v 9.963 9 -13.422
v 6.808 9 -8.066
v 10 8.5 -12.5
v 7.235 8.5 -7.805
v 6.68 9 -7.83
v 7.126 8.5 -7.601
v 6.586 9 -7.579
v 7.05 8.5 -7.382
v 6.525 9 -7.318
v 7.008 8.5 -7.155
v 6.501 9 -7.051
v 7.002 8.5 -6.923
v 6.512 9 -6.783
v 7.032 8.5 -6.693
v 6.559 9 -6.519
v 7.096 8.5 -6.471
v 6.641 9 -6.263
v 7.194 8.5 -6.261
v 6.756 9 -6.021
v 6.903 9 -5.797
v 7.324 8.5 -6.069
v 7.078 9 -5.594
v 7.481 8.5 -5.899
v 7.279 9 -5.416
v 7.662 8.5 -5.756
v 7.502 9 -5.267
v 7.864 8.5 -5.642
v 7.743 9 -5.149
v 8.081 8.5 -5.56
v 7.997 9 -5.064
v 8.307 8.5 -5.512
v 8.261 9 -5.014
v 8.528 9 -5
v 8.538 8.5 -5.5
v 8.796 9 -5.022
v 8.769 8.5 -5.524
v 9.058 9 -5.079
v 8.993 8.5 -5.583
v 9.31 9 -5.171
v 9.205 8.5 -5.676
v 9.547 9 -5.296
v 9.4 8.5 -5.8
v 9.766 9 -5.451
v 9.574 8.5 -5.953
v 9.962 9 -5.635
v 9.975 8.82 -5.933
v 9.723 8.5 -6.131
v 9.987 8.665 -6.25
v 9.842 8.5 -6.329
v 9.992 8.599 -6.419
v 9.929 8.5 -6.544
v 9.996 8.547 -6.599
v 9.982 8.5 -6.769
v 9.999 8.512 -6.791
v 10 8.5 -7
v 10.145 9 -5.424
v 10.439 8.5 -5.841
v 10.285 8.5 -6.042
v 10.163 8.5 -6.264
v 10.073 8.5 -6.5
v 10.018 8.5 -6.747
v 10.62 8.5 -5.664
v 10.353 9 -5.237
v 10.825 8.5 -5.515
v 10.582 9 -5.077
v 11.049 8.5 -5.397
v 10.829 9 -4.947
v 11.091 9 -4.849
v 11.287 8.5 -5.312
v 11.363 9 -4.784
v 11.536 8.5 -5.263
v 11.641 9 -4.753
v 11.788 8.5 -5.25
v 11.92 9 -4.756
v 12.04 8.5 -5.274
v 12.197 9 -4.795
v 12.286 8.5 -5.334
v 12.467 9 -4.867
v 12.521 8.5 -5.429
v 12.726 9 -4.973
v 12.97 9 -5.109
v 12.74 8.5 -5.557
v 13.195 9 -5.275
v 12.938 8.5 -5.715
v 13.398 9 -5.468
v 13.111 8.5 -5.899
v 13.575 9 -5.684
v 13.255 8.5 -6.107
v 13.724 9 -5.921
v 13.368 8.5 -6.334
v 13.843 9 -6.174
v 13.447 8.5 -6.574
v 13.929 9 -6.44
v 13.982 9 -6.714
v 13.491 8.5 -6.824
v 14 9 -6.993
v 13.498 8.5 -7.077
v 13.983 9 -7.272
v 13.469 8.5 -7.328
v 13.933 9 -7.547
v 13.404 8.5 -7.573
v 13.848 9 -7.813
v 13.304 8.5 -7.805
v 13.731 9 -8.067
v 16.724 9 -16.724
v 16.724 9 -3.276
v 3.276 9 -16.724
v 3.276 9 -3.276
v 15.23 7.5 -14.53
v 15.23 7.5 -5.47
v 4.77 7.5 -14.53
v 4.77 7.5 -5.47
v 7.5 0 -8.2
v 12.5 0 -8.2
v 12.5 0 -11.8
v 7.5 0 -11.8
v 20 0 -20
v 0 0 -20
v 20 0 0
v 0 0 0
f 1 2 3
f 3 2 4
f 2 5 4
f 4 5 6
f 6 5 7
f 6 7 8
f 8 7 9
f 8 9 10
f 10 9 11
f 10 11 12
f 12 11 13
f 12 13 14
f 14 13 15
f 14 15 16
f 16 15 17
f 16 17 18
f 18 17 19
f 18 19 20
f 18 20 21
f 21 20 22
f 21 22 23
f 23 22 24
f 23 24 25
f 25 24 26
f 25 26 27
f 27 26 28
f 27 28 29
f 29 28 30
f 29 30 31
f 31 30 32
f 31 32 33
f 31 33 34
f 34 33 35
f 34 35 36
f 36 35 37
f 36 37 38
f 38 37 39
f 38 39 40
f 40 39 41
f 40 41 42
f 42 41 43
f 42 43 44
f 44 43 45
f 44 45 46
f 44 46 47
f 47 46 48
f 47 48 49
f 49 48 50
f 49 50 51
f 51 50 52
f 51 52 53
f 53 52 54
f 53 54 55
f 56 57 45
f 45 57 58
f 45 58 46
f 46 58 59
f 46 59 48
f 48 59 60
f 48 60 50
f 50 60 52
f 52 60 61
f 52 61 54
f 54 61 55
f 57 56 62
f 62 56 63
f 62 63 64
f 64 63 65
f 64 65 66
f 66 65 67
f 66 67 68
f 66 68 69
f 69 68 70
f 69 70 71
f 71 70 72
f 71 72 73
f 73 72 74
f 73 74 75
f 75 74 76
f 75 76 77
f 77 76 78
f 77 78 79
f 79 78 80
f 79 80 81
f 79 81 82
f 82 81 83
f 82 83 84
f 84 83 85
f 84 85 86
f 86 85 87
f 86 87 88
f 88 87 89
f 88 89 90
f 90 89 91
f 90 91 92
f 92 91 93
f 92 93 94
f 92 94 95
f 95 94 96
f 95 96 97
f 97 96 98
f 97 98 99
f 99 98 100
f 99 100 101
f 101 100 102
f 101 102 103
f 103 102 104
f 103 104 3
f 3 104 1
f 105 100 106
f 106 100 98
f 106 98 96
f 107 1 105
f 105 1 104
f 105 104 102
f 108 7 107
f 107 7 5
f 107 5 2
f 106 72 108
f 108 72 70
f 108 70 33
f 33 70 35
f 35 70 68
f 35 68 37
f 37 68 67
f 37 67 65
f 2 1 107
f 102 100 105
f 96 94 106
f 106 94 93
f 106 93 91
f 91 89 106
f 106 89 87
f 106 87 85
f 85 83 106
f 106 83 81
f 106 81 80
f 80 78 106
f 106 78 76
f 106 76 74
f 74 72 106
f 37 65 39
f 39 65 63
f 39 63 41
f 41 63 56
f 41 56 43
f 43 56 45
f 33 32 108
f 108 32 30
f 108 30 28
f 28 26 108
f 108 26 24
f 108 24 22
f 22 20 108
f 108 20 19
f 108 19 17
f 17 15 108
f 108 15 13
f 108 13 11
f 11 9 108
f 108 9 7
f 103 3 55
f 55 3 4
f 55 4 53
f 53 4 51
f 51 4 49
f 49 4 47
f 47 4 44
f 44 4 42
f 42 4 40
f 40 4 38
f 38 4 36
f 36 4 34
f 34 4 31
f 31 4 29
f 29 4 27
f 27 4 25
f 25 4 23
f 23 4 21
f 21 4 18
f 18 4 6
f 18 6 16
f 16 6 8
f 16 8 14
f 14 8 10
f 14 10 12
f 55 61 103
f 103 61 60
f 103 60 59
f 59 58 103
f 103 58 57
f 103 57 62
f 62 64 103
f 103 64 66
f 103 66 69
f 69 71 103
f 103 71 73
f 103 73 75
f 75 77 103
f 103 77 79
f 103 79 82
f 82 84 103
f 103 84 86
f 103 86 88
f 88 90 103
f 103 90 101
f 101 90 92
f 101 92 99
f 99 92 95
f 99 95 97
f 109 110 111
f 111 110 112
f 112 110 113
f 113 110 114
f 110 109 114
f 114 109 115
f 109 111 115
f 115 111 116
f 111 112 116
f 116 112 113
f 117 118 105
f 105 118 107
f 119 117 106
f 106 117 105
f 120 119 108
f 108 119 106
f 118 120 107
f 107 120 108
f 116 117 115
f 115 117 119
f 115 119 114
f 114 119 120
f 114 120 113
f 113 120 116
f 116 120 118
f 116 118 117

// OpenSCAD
module object1(scale) {polyhedron(
 points=[[9.962706565856934,9,-13.421809196472168],[6.807797908782959,9,-8.066044807434082],[10,8.5,-12.5],
[10,8.5,-12.5],[6.807797908782959,9,-8.066044807434082],[7.234551429748535,8.5,-7.805382251739502],
[6.807797908782959,9,-8.066044807434082],[6.680378437042236,9,-7.830046653747559],[7.234551429748535,8.5,-7.805382251739502],
[7.234551429748535,8.5,-7.805382251739502],[6.680378437042236,9,-7.830046653747559],[7.125678539276123,8.5,-7.601032257080078],
[7.125678539276123,8.5,-7.601032257080078],[6.680378437042236,9,-7.830046653747559],[6.5856804847717285,9,-7.579121112823486],
[7.125678539276123,8.5,-7.601032257080078],[6.5856804847717285,9,-7.579121112823486],[7.049551963806152,8.5,-7.38236141204834],
[7.049551963806152,8.5,-7.38236141204834],[6.5856804847717285,9,-7.579121112823486],[6.525407791137695,9,-7.317781448364258],
[7.049551963806152,8.5,-7.38236141204834],[6.525407791137695,9,-7.317781448364258],[7.007986545562744,8.5,-7.154580116271973],
[7.007986545562744,8.5,-7.154580116271973],[6.525407791137695,9,-7.317781448364258],[6.500643730163574,9,-7.050727367401123],
[7.007986545562744,8.5,-7.154580116271973],[6.500643730163574,9,-7.050727367401123],[7.00197172164917,8.5,-6.923114776611328],
[7.00197172164917,8.5,-6.923114776611328],[6.500643730163574,9,-7.050727367401123],[6.511833190917969,9,-6.782761096954346],
[7.00197172164917,8.5,-6.923114776611328],[6.511833190917969,9,-6.782761096954346],[7.031651973724365,8.5,-6.693481922149658],
[7.031651973724365,8.5,-6.693481922149658],[6.511833190917969,9,-6.782761096954346],[6.558775901794434,9,-6.518701553344727],
[7.031651973724365,8.5,-6.693481922149658],[6.558775901794434,9,-6.518701553344727],[7.096319198608398,8.5,-6.4711527824401855],
[7.096319198608398,8.5,-6.4711527824401855],[6.558775901794434,9,-6.518701553344727],[6.640626907348633,9,-6.263296604156494],
[7.096319198608398,8.5,-6.4711527824401855],[6.640626907348633,9,-6.263296604156494],[7.194432735443115,8.5,-6.261424541473389],
[7.194432735443115,8.5,-6.261424541473389],[6.640626907348633,9,-6.263296604156494],[6.755914688110352,9,-6.021140098571777],
[7.194432735443115,8.5,-6.261424541473389],[6.755914688110352,9,-6.021140098571777],[6.902566432952881,9,-5.796586036682129],
[7.194432735443115,8.5,-6.261424541473389],[6.902566432952881,9,-5.796586036682129],[7.323654651641846,8.5,-6.0692949295043945],
[7.323654651641846,8.5,-6.0692949295043945],[6.902566432952881,9,-5.796586036682129],[7.077944278717041,9,-5.593672752380371],
[7.323654651641846,8.5,-6.0692949295043945],[7.077944278717041,9,-5.593672752380371],[7.4809064865112305,8.5,-5.899342060089111],
[7.4809064865112305,8.5,-5.899342060089111],[7.077944278717041,9,-5.593672752380371],[7.278894424438477,9,-5.416049003601074],
[7.4809064865112305,8.5,-5.899342060089111],[7.278894424438477,9,-5.416049003601074],[7.662440776824951,8.5,-5.755614757537842],
[7.662440776824951,8.5,-5.755614757537842],[7.278894424438477,9,-5.416049003601074],[7.501803398132324,9,-5.266909122467041],
[7.662440776824951,8.5,-5.755614757537842],[7.501803398132324,9,-5.266909122467041],[7.863932132720947,8.5,-5.641538619995117],
[7.863932132720947,8.5,-5.641538619995117],[7.501803398132324,9,-5.266909122467041],[7.7426629066467285,9,-5.148935317993164],
[7.863932132720947,8.5,-5.641538619995117],[7.7426629066467285,9,-5.148935317993164],[8.08057975769043,8.5,-5.559831142425537],
[8.08057975769043,8.5,-5.559831142425537],[7.7426629066467285,9,-5.148935317993164],[7.997141361236572,9,-5.064248561859131],
[8.08057975769043,8.5,-5.559831142425537],[7.997141361236572,9,-5.064248561859131],[8.307220458984375,8.5,-5.512439727783203],
[8.307220458984375,8.5,-5.512439727783203],[7.997141361236572,9,-5.064248561859131],[8.260663032531738,9,-5.0143723487854],
[8.307220458984375,8.5,-5.512439727783203],[8.260663032531738,9,-5.0143723487854],[8.528488159179688,9,-5.0002031326293945],
[8.307220458984375,8.5,-5.512439727783203],[8.528488159179688,9,-5.0002031326293945],[8.53845500946045,8.5,-5.500493049621582],
[8.53845500946045,8.5,-5.500493049621582],[8.528488159179688,9,-5.0002031326293945],[8.795801162719727,9,-5.021995544433594],
[8.53845500946045,8.5,-5.500493049621582],[8.795801162719727,9,-5.021995544433594],[8.768774032592773,8.5,-5.524276256561279],
[8.768774032592773,8.5,-5.524276256561279],[8.795801162719727,9,-5.021995544433594],[9.057794570922852,9,-5.079358100891113],
[8.768774032592773,8.5,-5.524276256561279],[9.057794570922852,9,-5.079358100891113],[8.992688179016113,8.5,-5.583222389221191],
[8.992688179016113,8.5,-5.583222389221191],[9.057794570922852,9,-5.079358100891113],[9.309758186340332,9,-5.17125940322876],
[8.992688179016113,8.5,-5.583222389221191],[9.309758186340332,9,-5.17125940322876],[9.204862594604492,8.5,-5.67592716217041],
[9.204862594604492,8.5,-5.67592716217041],[9.309758186340332,9,-5.17125940322876],[9.547159194946289,9,-5.296046257019043],
[9.204862594604492,8.5,-5.67592716217041],[9.547159194946289,9,-5.296046257019043],[9.40024185180664,8.5,-5.8001813888549805],
[9.40024185180664,8.5,-5.8001813888549805],[9.547159194946289,9,-5.296046257019043],[9.765729904174805,9,-5.451475143432617],
[9.40024185180664,8.5,-5.8001813888549805],[9.765729904174805,9,-5.451475143432617],[9.574170112609863,8.5,-5.953024387359619],
[9.574170112609863,8.5,-5.953024387359619],[9.765729904174805,9,-5.451475143432617],[9.961538314819336,9,-5.634750843048096],
[9.574170112609863,8.5,-5.953024387359619],[9.961538314819336,9,-5.634750843048096],[9.975346565246582,8.820490837097168,-5.9332594871521],
[9.574170112609863,8.5,-5.953024387359619],[9.975346565246582,8.820490837097168,-5.9332594871521],[9.722503662109375,8.5,-6.130814075469971],
[9.722503662109375,8.5,-6.130814075469971],[9.975346565246582,8.820490837097168,-5.9332594871521],[9.987335205078125,8.664649963378906,-6.250372409820557],
[9.722503662109375,8.5,-6.130814075469971],[9.987335205078125,8.664649963378906,-6.250372409820557],[9.841708183288574,8.5,-6.329314708709717],
[9.841708183288574,8.5,-6.329314708709717],[9.987335205078125,8.664649963378906,-6.250372409820557],[9.992377281188965,8.599093437194824,-6.419357776641846],
[9.841708183288574,8.5,-6.329314708709717],[9.992377281188965,8.599093437194824,-6.419357776641846],[9.928942680358887,8.5,-6.543796062469482],
[9.928942680358887,8.5,-6.543796062469482],[9.992377281188965,8.599093437194824,-6.419357776641846],[9.996391296386719,8.546920776367188,-6.5987443923950195],
[9.928942680358887,8.5,-6.543796062469482],[9.996391296386719,8.546920776367188,-6.5987443923950195],[9.982129096984863,8.5,-6.769147872924805],
[9.982129096984863,8.5,-6.769147872924805],[9.996391296386719,8.546920776367188,-6.5987443923950195],[9.999042510986328,8.512450218200684,-6.791351795196533],
[9.982129096984863,8.5,-6.769147872924805],[9.999042510986328,8.512450218200684,-6.791351795196533],[10,8.5,-7],
[10.14463996887207,9,-5.423511028289795],[10.43892765045166,8.5,-5.840867042541504],[9.961538314819336,9,-5.634750843048096],
[9.961538314819336,9,-5.634750843048096],[10.43892765045166,8.5,-5.840867042541504],[10.285398483276367,8.5,-6.042168617248535],
[9.961538314819336,9,-5.634750843048096],[10.285398483276367,8.5,-6.042168617248535],[9.975346565246582,8.820490837097168,-5.9332594871521],
[9.975346565246582,8.820490837097168,-5.9332594871521],[10.285398483276367,8.5,-6.042168617248535],[10.162520408630371,8.5,-6.263515949249268],
[9.975346565246582,8.820490837097168,-5.9332594871521],[10.162520408630371,8.5,-6.263515949249268],[9.987335205078125,8.664649963378906,-6.250372409820557],
[9.987335205078125,8.664649963378906,-6.250372409820557],[10.162520408630371,8.5,-6.263515949249268],[10.072866439819336,8.5,-6.500277042388916],
[9.987335205078125,8.664649963378906,-6.250372409820557],[10.072866439819336,8.5,-6.500277042388916],[9.992377281188965,8.599093437194824,-6.419357776641846],
[9.992377281188965,8.599093437194824,-6.419357776641846],[10.072866439819336,8.5,-6.500277042388916],[9.996391296386719,8.546920776367188,-6.5987443923950195],
[9.996391296386719,8.546920776367188,-6.5987443923950195],[10.072866439819336,8.5,-6.500277042388916],[10.018312454223633,8.5,-6.747496128082275],
[9.996391296386719,8.546920776367188,-6.5987443923950195],[10.018312454223633,8.5,-6.747496128082275],[9.999042510986328,8.512450218200684,-6.791351795196533],
[9.999042510986328,8.512450218200684,-6.791351795196533],[10.018312454223633,8.5,-6.747496128082275],[10,8.5,-7],
[10.43892765045166,8.5,-5.840867042541504],[10.14463996887207,9,-5.423511028289795],[10.619895935058594,8.5,-5.663824558258057],
[10.619895935058594,8.5,-5.663824558258057],[10.14463996887207,9,-5.423511028289795],[10.352522850036621,9,-5.236606597900391],
[10.619895935058594,8.5,-5.663824558258057],[10.352522850036621,9,-5.236606597900391],[10.824515342712402,8.5,-5.514746189117432],
[10.824515342712402,8.5,-5.514746189117432],[10.352522850036621,9,-5.236606597900391],[10.581977844238281,9,-5.076923370361328],
[10.824515342712402,8.5,-5.514746189117432],[10.581977844238281,9,-5.076923370361328],[11.048504829406738,8.5,-5.39675235748291],
[11.048504829406738,8.5,-5.39675235748291],[10.581977844238281,9,-5.076923370361328],[10.829463005065918,9,-4.946926116943359],
[11.048504829406738,8.5,-5.39675235748291],[10.829463005065918,9,-4.946926116943359],[11.091158866882324,9,-4.848621845245361],
[11.048504829406738,8.5,-5.39675235748291],[11.091158866882324,9,-4.848621845245361],[11.287174224853516,8.5,-5.31231164932251],
[11.287174224853516,8.5,-5.31231164932251],[11.091158866882324,9,-4.848621845245361],[11.363024711608887,9,-4.783527374267578],
[11.287174224853516,8.5,-5.31231164932251],[11.363024711608887,9,-4.783527374267578],[11.535531044006348,8.5,-5.2631916999816895],
[11.535531044006348,8.5,-5.2631916999816895],[11.363024711608887,9,-4.783527374267578],[11.640864372253418,9,-4.75264835357666],
[11.535531044006348,8.5,-5.2631916999816895],[11.640864372253418,9,-4.75264835357666],[11.788375854492188,8.5,-5.250421047210693],
[11.788375854492188,8.5,-5.250421047210693],[11.640864372253418,9,-4.75264835357666],[11.920389175415039,9,-4.756461143493652],
[11.788375854492188,8.5,-5.250421047210693],[11.920389175415039,9,-4.756461143493652],[12.040416717529297,8.5,-5.274266242980957],
[12.040416717529297,8.5,-5.274266242980957],[11.920389175415039,9,-4.756461143493652],[12.197282791137695,9,-4.7949066162109375],
[12.040416717529297,8.5,-5.274266242980957],[12.197282791137695,9,-4.7949066162109375],[12.286380767822266,8.5,-5.334228038787842],
[12.286380767822266,8.5,-5.334228038787842],[12.197282791137695,9,-4.7949066162109375],[12.467272758483887,9,-4.867391109466553],
[12.286380767822266,8.5,-5.334228038787842],[12.467272758483887,9,-4.867391109466553],[12.521119117736816,8.5,-5.429052352905273],
[12.521119117736816,8.5,-5.429052352905273],[12.467272758483887,9,-4.867391109466553],[12.726189613342285,9,-4.972796440124512],
[12.521119117736816,8.5,-5.429052352905273],[12.726189613342285,9,-4.972796440124512],[12.970037460327148,9,-5.109495162963867],
[12.521119117736816,8.5,-5.429052352905273],[12.970037460327148,9,-5.109495162963867],[12.739718437194824,8.5,-5.5567545890808105],
[12.739718437194824,8.5,-5.5567545890808105],[12.970037460327148,9,-5.109495162963867],[13.195052146911621,9,-5.27537727355957],
[12.739718437194824,8.5,-5.5567545890808105],[13.195052146911621,9,-5.27537727355957],[12.937604904174805,8.5,-5.714661121368408],
[12.937604904174805,8.5,-5.714661121368408],[13.195052146911621,9,-5.27537727355957],[13.397760391235352,9,-5.467881679534912],
[12.937604904174805,8.5,-5.714661121368408],[13.397760391235352,9,-5.467881679534912],[13.110635757446289,8.5,-5.899468421936035],
[13.110635757446289,8.5,-5.899468421936035],[13.397760391235352,9,-5.467881679534912],[13.575032234191895,9,-5.684037208557129],
[13.110635757446289,8.5,-5.899468421936035],[13.575032234191895,9,-5.684037208557129],[13.255191802978516,8.5,-6.1073079109191895],
[13.255191802978516,8.5,-6.1073079109191895],[13.575032234191895,9,-5.684037208557129],[13.72413158416748,9,-5.920506477355957],
[13.255191802978516,8.5,-6.1073079109191895],[13.72413158416748,9,-5.920506477355957],[13.368245124816895,8.5,-6.3338303565979],
[13.368245124816895,8.5,-6.3338303565979],[13.72413158416748,9,-5.920506477355957],[13.842756271362305,9,-6.17363977432251],
[13.368245124816895,8.5,-6.3338303565979],[13.842756271362305,9,-6.17363977432251],[13.447431564331055,8.5,-6.574294567108154],
[13.447431564331055,8.5,-6.574294567108154],[13.842756271362305,9,-6.17363977432251],[13.929076194763184,9,-6.4395294189453125],
[13.447431564331055,8.5,-6.574294567108154],[13.929076194763184,9,-6.4395294189453125],[13.981758117675781,9,-6.714070796966553],
[13.447431564331055,8.5,-6.574294567108154],[13.981758117675781,9,-6.714070796966553],[13.491093635559082,8.5,-6.823668003082275],
[13.491093635559082,8.5,-6.823668003082275],[13.981758117675781,9,-6.714070796966553],[13.99998950958252,9,-6.993025779724121],
[13.491093635559082,8.5,-6.823668003082275],[13.99998950958252,9,-6.993025779724121],[13.498316764831543,8.5,-7.076732158660889],
[13.498316764831543,8.5,-7.076732158660889],[13.99998950958252,9,-6.993025779724121],[13.983488082885742,9,-7.272089004516602],
[13.498316764831543,8.5,-7.076732158660889],[13.983488082885742,9,-7.272089004516602],[13.468951225280762,8.5,-7.328190326690674],
[13.468951225280762,8.5,-7.328190326690674],[13.983488082885742,9,-7.272089004516602],[13.93250846862793,9,-7.546951770782471],
[13.468951225280762,8.5,-7.328190326690674],[13.93250846862793,9,-7.546951770782471],[13.403609275817871,8.5,-7.572779655456543],
[13.403609275817871,8.5,-7.572779655456543],[13.93250846862793,9,-7.546951770782471],[13.84783935546875,9,-7.813371181488037],
[13.403609275817871,8.5,-7.572779655456543],[13.84783935546875,9,-7.813371181488037],[13.30366039276123,8.5,-7.805382251739502],
[13.30366039276123,8.5,-7.805382251739502],[13.84783935546875,9,-7.813371181488037],[13.730785369873047,9,-8.067234992980957],
[13.30366039276123,8.5,-7.805382251739502],[13.730785369873047,9,-8.067234992980957],[10,8.5,-12.5],
[10,8.5,-12.5],[13.730785369873047,9,-8.067234992980957],[9.962706565856934,9,-13.421809196472168],
[16.724267959594727,9,-16.724267959594727],[13.93250846862793,9,-7.546951770782471],[16.724267959594727,9,-3.2757320404052734],
[16.724267959594727,9,-3.2757320404052734],[13.93250846862793,9,-7.546951770782471],[13.983488082885742,9,-7.272089004516602],
[16.724267959594727,9,-3.2757320404052734],[13.983488082885742,9,-7.272089004516602],[13.99998950958252,9,-6.993025779724121],
[3.2757320404052734,9,-16.724267959594727],[9.962706565856934,9,-13.421809196472168],[16.724267959594727,9,-16.724267959594727],
[16.724267959594727,9,-16.724267959594727],[9.962706565856934,9,-13.421809196472168],[13.730785369873047,9,-8.067234992980957],
[16.724267959594727,9,-16.724267959594727],[13.730785369873047,9,-8.067234992980957],[13.84783935546875,9,-7.813371181488037],
[3.2757320404052734,9,-3.2757320404052734],[6.5856804847717285,9,-7.579121112823486],[3.2757320404052734,9,-16.724267959594727],
[3.2757320404052734,9,-16.724267959594727],[6.5856804847717285,9,-7.579121112823486],[6.680378437042236,9,-7.830046653747559],
[3.2757320404052734,9,-16.724267959594727],[6.680378437042236,9,-7.830046653747559],[6.807797908782959,9,-8.066044807434082],
[16.724267959594727,9,-3.2757320404052734],[11.640864372253418,9,-4.75264835357666],[3.2757320404052734,9,-3.2757320404052734],
[3.2757320404052734,9,-3.2757320404052734],[11.640864372253418,9,-4.75264835357666],[11.363024711608887,9,-4.783527374267578],
[3.2757320404052734,9,-3.2757320404052734],[11.363024711608887,9,-4.783527374267578],[8.528488159179688,9,-5.0002031326293945],
[8.528488159179688,9,-5.0002031326293945],[11.363024711608887,9,-4.783527374267578],[8.795801162719727,9,-5.021995544433594],
[8.795801162719727,9,-5.021995544433594],[11.363024711608887,9,-4.783527374267578],[11.091158866882324,9,-4.848621845245361],
[8.795801162719727,9,-5.021995544433594],[11.091158866882324,9,-4.848621845245361],[9.057794570922852,9,-5.079358100891113],
[9.057794570922852,9,-5.079358100891113],[11.091158866882324,9,-4.848621845245361],[10.829463005065918,9,-4.946926116943359],
[9.057794570922852,9,-5.079358100891113],[10.829463005065918,9,-4.946926116943359],[10.581977844238281,9,-5.076923370361328],
[6.807797908782959,9,-8.066044807434082],[9.962706565856934,9,-13.421809196472168],[3.2757320404052734,9,-16.724267959594727],
[13.84783935546875,9,-7.813371181488037],[13.93250846862793,9,-7.546951770782471],[16.724267959594727,9,-16.724267959594727],
[13.99998950958252,9,-6.993025779724121],[13.981758117675781,9,-6.714070796966553],[16.724267959594727,9,-3.2757320404052734],
[16.724267959594727,9,-3.2757320404052734],[13.981758117675781,9,-6.714070796966553],[13.929076194763184,9,-6.4395294189453125],
[16.724267959594727,9,-3.2757320404052734],[13.929076194763184,9,-6.4395294189453125],[13.842756271362305,9,-6.17363977432251],
[13.842756271362305,9,-6.17363977432251],[13.72413158416748,9,-5.920506477355957],[16.724267959594727,9,-3.2757320404052734],
[16.724267959594727,9,-3.2757320404052734],[13.72413158416748,9,-5.920506477355957],[13.575032234191895,9,-5.684037208557129],
[16.724267959594727,9,-3.2757320404052734],[13.575032234191895,9,-5.684037208557129],[13.397760391235352,9,-5.467881679534912],
[13.397760391235352,9,-5.467881679534912],[13.195052146911621,9,-5.27537727355957],[16.724267959594727,9,-3.2757320404052734],
[16.724267959594727,9,-3.2757320404052734],[13.195052146911621,9,-5.27537727355957],[12.970037460327148,9,-5.109495162963867],
[16.724267959594727,9,-3.2757320404052734],[12.970037460327148,9,-5.109495162963867],[12.726189613342285,9,-4.972796440124512],
[12.726189613342285,9,-4.972796440124512],[12.467272758483887,9,-4.867391109466553],[16.724267959594727,9,-3.2757320404052734],
[16.724267959594727,9,-3.2757320404052734],[12.467272758483887,9,-4.867391109466553],[12.197282791137695,9,-4.7949066162109375],
[16.724267959594727,9,-3.2757320404052734],[12.197282791137695,9,-4.7949066162109375],[11.920389175415039,9,-4.756461143493652],
[11.920389175415039,9,-4.756461143493652],[11.640864372253418,9,-4.75264835357666],[16.724267959594727,9,-3.2757320404052734],
[9.057794570922852,9,-5.079358100891113],[10.581977844238281,9,-5.076923370361328],[9.309758186340332,9,-5.17125940322876],
[9.309758186340332,9,-5.17125940322876],[10.581977844238281,9,-5.076923370361328],[10.352522850036621,9,-5.236606597900391],
[9.309758186340332,9,-5.17125940322876],[10.352522850036621,9,-5.236606597900391],[9.547159194946289,9,-5.296046257019043],
[9.547159194946289,9,-5.296046257019043],[10.352522850036621,9,-5.236606597900391],[10.14463996887207,9,-5.423511028289795],
[9.547159194946289,9,-5.296046257019043],[10.14463996887207,9,-5.423511028289795],[9.765729904174805,9,-5.451475143432617],
[9.765729904174805,9,-5.451475143432617],[10.14463996887207,9,-5.423511028289795],[9.961538314819336,9,-5.634750843048096],
[8.528488159179688,9,-5.0002031326293945],[8.260663032531738,9,-5.0143723487854],[3.2757320404052734,9,-3.2757320404052734],
[3.2757320404052734,9,-3.2757320404052734],[8.260663032531738,9,-5.0143723487854],[7.997141361236572,9,-5.064248561859131],
[3.2757320404052734,9,-3.2757320404052734],[7.997141361236572,9,-5.064248561859131],[7.7426629066467285,9,-5.148935317993164],
[7.7426629066467285,9,-5.148935317993164],[7.501803398132324,9,-5.266909122467041],[3.2757320404052734,9,-3.2757320404052734],
[3.2757320404052734,9,-3.2757320404052734],[7.501803398132324,9,-5.266909122467041],[7.278894424438477,9,-5.416049003601074],
[3.2757320404052734,9,-3.2757320404052734],[7.278894424438477,9,-5.416049003601074],[7.077944278717041,9,-5.593672752380371],
[7.077944278717041,9,-5.593672752380371],[6.902566432952881,9,-5.796586036682129],[3.2757320404052734,9,-3.2757320404052734],
[3.2757320404052734,9,-3.2757320404052734],[6.902566432952881,9,-5.796586036682129],[6.755914688110352,9,-6.021140098571777],
[3.2757320404052734,9,-3.2757320404052734],[6.755914688110352,9,-6.021140098571777],[6.640626907348633,9,-6.263296604156494],
[6.640626907348633,9,-6.263296604156494],[6.558775901794434,9,-6.518701553344727],[3.2757320404052734,9,-3.2757320404052734],
[3.2757320404052734,9,-3.2757320404052734],[6.558775901794434,9,-6.518701553344727],[6.511833190917969,9,-6.782761096954346],
[3.2757320404052734,9,-3.2757320404052734],[6.511833190917969,9,-6.782761096954346],[6.500643730163574,9,-7.050727367401123],
[6.500643730163574,9,-7.050727367401123],[6.525407791137695,9,-7.317781448364258],[3.2757320404052734,9,-3.2757320404052734],
[3.2757320404052734,9,-3.2757320404052734],[6.525407791137695,9,-7.317781448364258],[6.5856804847717285,9,-7.579121112823486],
[13.30366039276123,8.5,-7.805382251739502],[10,8.5,-12.5],[10,8.5,-7],
[10,8.5,-7],[10,8.5,-12.5],[7.234551429748535,8.5,-7.805382251739502],
[10,8.5,-7],[7.234551429748535,8.5,-7.805382251739502],[9.982129096984863,8.5,-6.769147872924805],
[9.982129096984863,8.5,-6.769147872924805],[7.234551429748535,8.5,-7.805382251739502],[9.928942680358887,8.5,-6.543796062469482],
[9.928942680358887,8.5,-6.543796062469482],[7.234551429748535,8.5,-7.805382251739502],[9.841708183288574,8.5,-6.329314708709717],
[9.841708183288574,8.5,-6.329314708709717],[7.234551429748535,8.5,-7.805382251739502],[9.722503662109375,8.5,-6.130814075469971],
[9.722503662109375,8.5,-6.130814075469971],[7.234551429748535,8.5,-7.805382251739502],[9.574170112609863,8.5,-5.953024387359619],
[9.574170112609863,8.5,-5.953024387359619],[7.234551429748535,8.5,-7.805382251739502],[9.40024185180664,8.5,-5.8001813888549805],
[9.40024185180664,8.5,-5.8001813888549805],[7.234551429748535,8.5,-7.805382251739502],[9.204862594604492,8.5,-5.67592716217041],
[9.204862594604492,8.5,-5.67592716217041],[7.234551429748535,8.5,-7.805382251739502],[8.992688179016113,8.5,-5.583222389221191],
[8.992688179016113,8.5,-5.583222389221191],[7.234551429748535,8.5,-7.805382251739502],[8.768774032592773,8.5,-5.524276256561279],
[8.768774032592773,8.5,-5.524276256561279],[7.234551429748535,8.5,-7.805382251739502],[8.53845500946045,8.5,-5.500493049621582],
[8.53845500946045,8.5,-5.500493049621582],[7.234551429748535,8.5,-7.805382251739502],[8.307220458984375,8.5,-5.512439727783203],
[8.307220458984375,8.5,-5.512439727783203],[7.234551429748535,8.5,-7.805382251739502],[8.08057975769043,8.5,-5.559831142425537],
[8.08057975769043,8.5,-5.559831142425537],[7.234551429748535,8.5,-7.805382251739502],[7.863932132720947,8.5,-5.641538619995117],
[7.863932132720947,8.5,-5.641538619995117],[7.234551429748535,8.5,-7.805382251739502],[7.662440776824951,8.5,-5.755614757537842],
[7.662440776824951,8.5,-5.755614757537842],[7.234551429748535,8.5,-7.805382251739502],[7.4809064865112305,8.5,-5.899342060089111],
[7.4809064865112305,8.5,-5.899342060089111],[7.234551429748535,8.5,-7.805382251739502],[7.323654651641846,8.5,-6.0692949295043945],
[7.323654651641846,8.5,-6.0692949295043945],[7.234551429748535,8.5,-7.805382251739502],[7.194432735443115,8.5,-6.261424541473389],
[7.194432735443115,8.5,-6.261424541473389],[7.234551429748535,8.5,-7.805382251739502],[7.125678539276123,8.5,-7.601032257080078],
[7.194432735443115,8.5,-6.261424541473389],[7.125678539276123,8.5,-7.601032257080078],[7.096319198608398,8.5,-6.4711527824401855],
[7.096319198608398,8.5,-6.4711527824401855],[7.125678539276123,8.5,-7.601032257080078],[7.049551963806152,8.5,-7.38236141204834],
[7.096319198608398,8.5,-6.4711527824401855],[7.049551963806152,8.5,-7.38236141204834],[7.031651973724365,8.5,-6.693481922149658],
[7.031651973724365,8.5,-6.693481922149658],[7.049551963806152,8.5,-7.38236141204834],[7.007986545562744,8.5,-7.154580116271973],
[7.031651973724365,8.5,-6.693481922149658],[7.007986545562744,8.5,-7.154580116271973],[7.00197172164917,8.5,-6.923114776611328],
[10,8.5,-7],[10.018312454223633,8.5,-6.747496128082275],[13.30366039276123,8.5,-7.805382251739502],
[13.30366039276123,8.5,-7.805382251739502],[10.018312454223633,8.5,-6.747496128082275],[10.072866439819336,8.5,-6.500277042388916],
[13.30366039276123,8.5,-7.805382251739502],[10.072866439819336,8.5,-6.500277042388916],[10.162520408630371,8.5,-6.263515949249268],
[10.162520408630371,8.5,-6.263515949249268],[10.285398483276367,8.5,-6.042168617248535],[13.30366039276123,8.5,-7.805382251739502],
[13.30366039276123,8.5,-7.805382251739502],[10.285398483276367,8.5,-6.042168617248535],[10.43892765045166,8.5,-5.840867042541504],
[13.30366039276123,8.5,-7.805382251739502],[10.43892765045166,8.5,-5.840867042541504],[10.619895935058594,8.5,-5.663824558258057],
[10.619895935058594,8.5,-5.663824558258057],[10.824515342712402,8.5,-5.514746189117432],[13.30366039276123,8.5,-7.805382251739502],
[13.30366039276123,8.5,-7.805382251739502],[10.824515342712402,8.5,-5.514746189117432],[11.048504829406738,8.5,-5.39675235748291],
[13.30366039276123,8.5,-7.805382251739502],[11.048504829406738,8.5,-5.39675235748291],[11.287174224853516,8.5,-5.31231164932251],
[11.287174224853516,8.5,-5.31231164932251],[11.535531044006348,8.5,-5.2631916999816895],[13.30366039276123,8.5,-7.805382251739502],
[13.30366039276123,8.5,-7.805382251739502],[11.535531044006348,8.5,-5.2631916999816895],[11.788375854492188,8.5,-5.250421047210693],
[13.30366039276123,8.5,-7.805382251739502],[11.788375854492188,8.5,-5.250421047210693],[12.040416717529297,8.5,-5.274266242980957],
[12.040416717529297,8.5,-5.274266242980957],[12.286380767822266,8.5,-5.334228038787842],[13.30366039276123,8.5,-7.805382251739502],
[13.30366039276123,8.5,-7.805382251739502],[12.286380767822266,8.5,-5.334228038787842],[12.521119117736816,8.5,-5.429052352905273],
[13.30366039276123,8.5,-7.805382251739502],[12.521119117736816,8.5,-5.429052352905273],[12.739718437194824,8.5,-5.5567545890808105],
[12.739718437194824,8.5,-5.5567545890808105],[12.937604904174805,8.5,-5.714661121368408],[13.30366039276123,8.5,-7.805382251739502],
[13.30366039276123,8.5,-7.805382251739502],[12.937604904174805,8.5,-5.714661121368408],[13.110635757446289,8.5,-5.899468421936035],
[13.30366039276123,8.5,-7.805382251739502],[13.110635757446289,8.5,-5.899468421936035],[13.255191802978516,8.5,-6.1073079109191895],
[13.255191802978516,8.5,-6.1073079109191895],[13.368245124816895,8.5,-6.3338303565979],[13.30366039276123,8.5,-7.805382251739502],
[13.30366039276123,8.5,-7.805382251739502],[13.368245124816895,8.5,-6.3338303565979],[13.403609275817871,8.5,-7.572779655456543],
[13.403609275817871,8.5,-7.572779655456543],[13.368245124816895,8.5,-6.3338303565979],[13.447431564331055,8.5,-6.574294567108154],
[13.403609275817871,8.5,-7.572779655456543],[13.447431564331055,8.5,-6.574294567108154],[13.468951225280762,8.5,-7.328190326690674],
[13.468951225280762,8.5,-7.328190326690674],[13.447431564331055,8.5,-6.574294567108154],[13.491093635559082,8.5,-6.823668003082275],
[13.468951225280762,8.5,-7.328190326690674],[13.491093635559082,8.5,-6.823668003082275],[13.498316764831543,8.5,-7.076732158660889],
[15.229776382446289,7.5,-14.529776573181152],[15.229776382446289,7.5,-5.470223426818848],[4.770223140716553,7.5,-14.529776573181152],
[4.770223140716553,7.5,-14.529776573181152],[15.229776382446289,7.5,-5.470223426818848],[4.770223140716553,7.5,-5.470223426818848],
[4.770223140716553,7.5,-5.470223426818848],[15.229776382446289,7.5,-5.470223426818848],[7.5,0,-8.199999809265137],
[7.5,0,-8.199999809265137],[15.229776382446289,7.5,-5.470223426818848],[12.5,0,-8.199999809265137],
[15.229776382446289,7.5,-5.470223426818848],[15.229776382446289,7.5,-14.529776573181152],[12.5,0,-8.199999809265137],
[12.5,0,-8.199999809265137],[15.229776382446289,7.5,-14.529776573181152],[12.5,0,-11.800000190734863],
[15.229776382446289,7.5,-14.529776573181152],[4.770223140716553,7.5,-14.529776573181152],[12.5,0,-11.800000190734863],
[12.5,0,-11.800000190734863],[4.770223140716553,7.5,-14.529776573181152],[7.5,0,-11.800000190734863],
[4.770223140716553,7.5,-14.529776573181152],[4.770223140716553,7.5,-5.470223426818848],[7.5,0,-11.800000190734863],
[7.5,0,-11.800000190734863],[4.770223140716553,7.5,-5.470223426818848],[7.5,0,-8.199999809265137],
[20,0,-20],[0,0,-20],[16.724267959594727,9,-16.724267959594727],
[16.724267959594727,9,-16.724267959594727],[0,0,-20],[3.2757320404052734,9,-16.724267959594727],
[20,0,0],[20,0,-20],[16.724267959594727,9,-3.2757320404052734],
[16.724267959594727,9,-3.2757320404052734],[20,0,-20],[16.724267959594727,9,-16.724267959594727],
[0,0,0],[20,0,0],[3.2757320404052734,9,-3.2757320404052734],
[3.2757320404052734,9,-3.2757320404052734],[20,0,0],[16.724267959594727,9,-3.2757320404052734],
[0,0,-20],[0,0,0],[3.2757320404052734,9,-16.724267959594727],
[3.2757320404052734,9,-16.724267959594727],[0,0,0],[3.2757320404052734,9,-3.2757320404052734],
[7.5,0,-11.800000190734863],[20,0,-20],[12.5,0,-11.800000190734863],
[12.5,0,-11.800000190734863],[20,0,-20],[20,0,0],
[12.5,0,-11.800000190734863],[20,0,0],[12.5,0,-8.199999809265137],
[12.5,0,-8.199999809265137],[20,0,0],[0,0,0],
[12.5,0,-8.199999809265137],[0,0,0],[7.5,0,-8.199999809265137],
[7.5,0,-8.199999809265137],[0,0,0],[7.5,0,-11.800000190734863],
[7.5,0,-11.800000190734863],[0,0,0],[0,0,-20],
[7.5,0,-11.800000190734863],[0,0,-20],[20,0,-20] ],
faces=[[0,1,2],[3,4,5],[6,7,8],
[9,10,11],[12,13,14],[15,16,17],
[18,19,20],[21,22,23],[24,25,26],
[27,28,29],[30,31,32],[33,34,35],
[36,37,38],[39,40,41],[42,43,44],
[45,46,47],[48,49,50],[51,52,53],
[54,55,56],[57,58,59],[60,61,62],
[63,64,65],[66,67,68],[69,70,71],
[72,73,74],[75,76,77],[78,79,80],
[81,82,83],[84,85,86],[87,88,89],
[90,91,92],[93,94,95],[96,97,98],
[99,100,101],[102,103,104],[105,106,107],
[108,109,110],[111,112,113],[114,115,116],
[117,118,119],[120,121,122],[123,124,125],
[126,127,128],[129,130,131],[132,133,134],
[135,136,137],[138,139,140],[141,142,143],
[144,145,146],[147,148,149],[150,151,152],
[153,154,155],[156,157,158],[159,160,161],
[162,163,164],[165,166,167],[168,169,170],
[171,172,173],[174,175,176],[177,178,179],
[180,181,182],[183,184,185],[186,187,188],
[189,190,191],[192,193,194],[195,196,197],
[198,199,200],[201,202,203],[204,205,206],
[207,208,209],[210,211,212],[213,214,215],
[216,217,218],[219,220,221],[222,223,224],
[225,226,227],[228,229,230],[231,232,233],
[234,235,236],[237,238,239],[240,241,242],
[243,244,245],[246,247,248],[249,250,251],
[252,253,254],[255,256,257],[258,259,260],
[261,262,263],[264,265,266],[267,268,269],
[270,271,272],[273,274,275],[276,277,278],
[279,280,281],[282,283,284],[285,286,287],
[288,289,290],[291,292,293],[294,295,296],
[297,298,299],[300,301,302],[303,304,305],
[306,307,308],[309,310,311],[312,313,314],
[315,316,317],[318,319,320],[321,322,323],
[324,325,326],[327,328,329],[330,331,332],
[333,334,335],[336,337,338],[339,340,341],
[342,343,344],[345,346,347],[348,349,350],
[351,352,353],[354,355,356],[357,358,359],
[360,361,362],[363,364,365],[366,367,368],
[369,370,371],[372,373,374],[375,376,377],
[378,379,380],[381,382,383],[384,385,386],
[387,388,389],[390,391,392],[393,394,395],
[396,397,398],[399,400,401],[402,403,404],
[405,406,407],[408,409,410],[411,412,413],
[414,415,416],[417,418,419],[420,421,422],
[423,424,425],[426,427,428],[429,430,431],
[432,433,434],[435,436,437],[438,439,440],
[441,442,443],[444,445,446],[447,448,449],
[450,451,452],[453,454,455],[456,457,458],
[459,460,461],[462,463,464],[465,466,467],
[468,469,470],[471,472,473],[474,475,476],
[477,478,479],[480,481,482],[483,484,485],
[486,487,488],[489,490,491],[492,493,494],
[495,496,497],[498,499,500],[501,502,503],
[504,505,506],[507,508,509],[510,511,512],
[513,514,515],[516,517,518],[519,520,521],
[522,523,524],[525,526,527],[528,529,530],
[531,532,533],[534,535,536],[537,538,539],
[540,541,542],[543,544,545],[546,547,548],
[549,550,551],[552,553,554],[555,556,557],
[558,559,560],[561,562,563],[564,565,566],
[567,568,569],[570,571,572],[573,574,575],
[576,577,578],[579,580,581],[582,583,584],
[585,586,587],[588,589,590],[591,592,593],
[594,595,596],[597,598,599],[600,601,602],
[603,604,605],[606,607,608],[609,610,611],
[612,613,614],[615,616,617],[618,619,620],
[621,622,623],[624,625,626],[627,628,629],
[630,631,632],[633,634,635],[636,637,638],
[639,640,641],[642,643,644],[645,646,647],
[648,649,650],[651,652,653],[654,655,656],
[657,658,659],[660,661,662],[663,664,665],
[666,667,668],[669,670,671],[672,673,674],
[675,676,677],[678,679,680],[681,682,683],
[684,685,686],[687,688,689],[690,691,692],
[693,694,695],[696,697,698],[699,700,701],
[702,703,704],[705,706,707]]);}

function object1Min() = [0.000, 0.000, -20.000];
function object1Max() = [20.000, 9.000, 0.000];

object1(1);
